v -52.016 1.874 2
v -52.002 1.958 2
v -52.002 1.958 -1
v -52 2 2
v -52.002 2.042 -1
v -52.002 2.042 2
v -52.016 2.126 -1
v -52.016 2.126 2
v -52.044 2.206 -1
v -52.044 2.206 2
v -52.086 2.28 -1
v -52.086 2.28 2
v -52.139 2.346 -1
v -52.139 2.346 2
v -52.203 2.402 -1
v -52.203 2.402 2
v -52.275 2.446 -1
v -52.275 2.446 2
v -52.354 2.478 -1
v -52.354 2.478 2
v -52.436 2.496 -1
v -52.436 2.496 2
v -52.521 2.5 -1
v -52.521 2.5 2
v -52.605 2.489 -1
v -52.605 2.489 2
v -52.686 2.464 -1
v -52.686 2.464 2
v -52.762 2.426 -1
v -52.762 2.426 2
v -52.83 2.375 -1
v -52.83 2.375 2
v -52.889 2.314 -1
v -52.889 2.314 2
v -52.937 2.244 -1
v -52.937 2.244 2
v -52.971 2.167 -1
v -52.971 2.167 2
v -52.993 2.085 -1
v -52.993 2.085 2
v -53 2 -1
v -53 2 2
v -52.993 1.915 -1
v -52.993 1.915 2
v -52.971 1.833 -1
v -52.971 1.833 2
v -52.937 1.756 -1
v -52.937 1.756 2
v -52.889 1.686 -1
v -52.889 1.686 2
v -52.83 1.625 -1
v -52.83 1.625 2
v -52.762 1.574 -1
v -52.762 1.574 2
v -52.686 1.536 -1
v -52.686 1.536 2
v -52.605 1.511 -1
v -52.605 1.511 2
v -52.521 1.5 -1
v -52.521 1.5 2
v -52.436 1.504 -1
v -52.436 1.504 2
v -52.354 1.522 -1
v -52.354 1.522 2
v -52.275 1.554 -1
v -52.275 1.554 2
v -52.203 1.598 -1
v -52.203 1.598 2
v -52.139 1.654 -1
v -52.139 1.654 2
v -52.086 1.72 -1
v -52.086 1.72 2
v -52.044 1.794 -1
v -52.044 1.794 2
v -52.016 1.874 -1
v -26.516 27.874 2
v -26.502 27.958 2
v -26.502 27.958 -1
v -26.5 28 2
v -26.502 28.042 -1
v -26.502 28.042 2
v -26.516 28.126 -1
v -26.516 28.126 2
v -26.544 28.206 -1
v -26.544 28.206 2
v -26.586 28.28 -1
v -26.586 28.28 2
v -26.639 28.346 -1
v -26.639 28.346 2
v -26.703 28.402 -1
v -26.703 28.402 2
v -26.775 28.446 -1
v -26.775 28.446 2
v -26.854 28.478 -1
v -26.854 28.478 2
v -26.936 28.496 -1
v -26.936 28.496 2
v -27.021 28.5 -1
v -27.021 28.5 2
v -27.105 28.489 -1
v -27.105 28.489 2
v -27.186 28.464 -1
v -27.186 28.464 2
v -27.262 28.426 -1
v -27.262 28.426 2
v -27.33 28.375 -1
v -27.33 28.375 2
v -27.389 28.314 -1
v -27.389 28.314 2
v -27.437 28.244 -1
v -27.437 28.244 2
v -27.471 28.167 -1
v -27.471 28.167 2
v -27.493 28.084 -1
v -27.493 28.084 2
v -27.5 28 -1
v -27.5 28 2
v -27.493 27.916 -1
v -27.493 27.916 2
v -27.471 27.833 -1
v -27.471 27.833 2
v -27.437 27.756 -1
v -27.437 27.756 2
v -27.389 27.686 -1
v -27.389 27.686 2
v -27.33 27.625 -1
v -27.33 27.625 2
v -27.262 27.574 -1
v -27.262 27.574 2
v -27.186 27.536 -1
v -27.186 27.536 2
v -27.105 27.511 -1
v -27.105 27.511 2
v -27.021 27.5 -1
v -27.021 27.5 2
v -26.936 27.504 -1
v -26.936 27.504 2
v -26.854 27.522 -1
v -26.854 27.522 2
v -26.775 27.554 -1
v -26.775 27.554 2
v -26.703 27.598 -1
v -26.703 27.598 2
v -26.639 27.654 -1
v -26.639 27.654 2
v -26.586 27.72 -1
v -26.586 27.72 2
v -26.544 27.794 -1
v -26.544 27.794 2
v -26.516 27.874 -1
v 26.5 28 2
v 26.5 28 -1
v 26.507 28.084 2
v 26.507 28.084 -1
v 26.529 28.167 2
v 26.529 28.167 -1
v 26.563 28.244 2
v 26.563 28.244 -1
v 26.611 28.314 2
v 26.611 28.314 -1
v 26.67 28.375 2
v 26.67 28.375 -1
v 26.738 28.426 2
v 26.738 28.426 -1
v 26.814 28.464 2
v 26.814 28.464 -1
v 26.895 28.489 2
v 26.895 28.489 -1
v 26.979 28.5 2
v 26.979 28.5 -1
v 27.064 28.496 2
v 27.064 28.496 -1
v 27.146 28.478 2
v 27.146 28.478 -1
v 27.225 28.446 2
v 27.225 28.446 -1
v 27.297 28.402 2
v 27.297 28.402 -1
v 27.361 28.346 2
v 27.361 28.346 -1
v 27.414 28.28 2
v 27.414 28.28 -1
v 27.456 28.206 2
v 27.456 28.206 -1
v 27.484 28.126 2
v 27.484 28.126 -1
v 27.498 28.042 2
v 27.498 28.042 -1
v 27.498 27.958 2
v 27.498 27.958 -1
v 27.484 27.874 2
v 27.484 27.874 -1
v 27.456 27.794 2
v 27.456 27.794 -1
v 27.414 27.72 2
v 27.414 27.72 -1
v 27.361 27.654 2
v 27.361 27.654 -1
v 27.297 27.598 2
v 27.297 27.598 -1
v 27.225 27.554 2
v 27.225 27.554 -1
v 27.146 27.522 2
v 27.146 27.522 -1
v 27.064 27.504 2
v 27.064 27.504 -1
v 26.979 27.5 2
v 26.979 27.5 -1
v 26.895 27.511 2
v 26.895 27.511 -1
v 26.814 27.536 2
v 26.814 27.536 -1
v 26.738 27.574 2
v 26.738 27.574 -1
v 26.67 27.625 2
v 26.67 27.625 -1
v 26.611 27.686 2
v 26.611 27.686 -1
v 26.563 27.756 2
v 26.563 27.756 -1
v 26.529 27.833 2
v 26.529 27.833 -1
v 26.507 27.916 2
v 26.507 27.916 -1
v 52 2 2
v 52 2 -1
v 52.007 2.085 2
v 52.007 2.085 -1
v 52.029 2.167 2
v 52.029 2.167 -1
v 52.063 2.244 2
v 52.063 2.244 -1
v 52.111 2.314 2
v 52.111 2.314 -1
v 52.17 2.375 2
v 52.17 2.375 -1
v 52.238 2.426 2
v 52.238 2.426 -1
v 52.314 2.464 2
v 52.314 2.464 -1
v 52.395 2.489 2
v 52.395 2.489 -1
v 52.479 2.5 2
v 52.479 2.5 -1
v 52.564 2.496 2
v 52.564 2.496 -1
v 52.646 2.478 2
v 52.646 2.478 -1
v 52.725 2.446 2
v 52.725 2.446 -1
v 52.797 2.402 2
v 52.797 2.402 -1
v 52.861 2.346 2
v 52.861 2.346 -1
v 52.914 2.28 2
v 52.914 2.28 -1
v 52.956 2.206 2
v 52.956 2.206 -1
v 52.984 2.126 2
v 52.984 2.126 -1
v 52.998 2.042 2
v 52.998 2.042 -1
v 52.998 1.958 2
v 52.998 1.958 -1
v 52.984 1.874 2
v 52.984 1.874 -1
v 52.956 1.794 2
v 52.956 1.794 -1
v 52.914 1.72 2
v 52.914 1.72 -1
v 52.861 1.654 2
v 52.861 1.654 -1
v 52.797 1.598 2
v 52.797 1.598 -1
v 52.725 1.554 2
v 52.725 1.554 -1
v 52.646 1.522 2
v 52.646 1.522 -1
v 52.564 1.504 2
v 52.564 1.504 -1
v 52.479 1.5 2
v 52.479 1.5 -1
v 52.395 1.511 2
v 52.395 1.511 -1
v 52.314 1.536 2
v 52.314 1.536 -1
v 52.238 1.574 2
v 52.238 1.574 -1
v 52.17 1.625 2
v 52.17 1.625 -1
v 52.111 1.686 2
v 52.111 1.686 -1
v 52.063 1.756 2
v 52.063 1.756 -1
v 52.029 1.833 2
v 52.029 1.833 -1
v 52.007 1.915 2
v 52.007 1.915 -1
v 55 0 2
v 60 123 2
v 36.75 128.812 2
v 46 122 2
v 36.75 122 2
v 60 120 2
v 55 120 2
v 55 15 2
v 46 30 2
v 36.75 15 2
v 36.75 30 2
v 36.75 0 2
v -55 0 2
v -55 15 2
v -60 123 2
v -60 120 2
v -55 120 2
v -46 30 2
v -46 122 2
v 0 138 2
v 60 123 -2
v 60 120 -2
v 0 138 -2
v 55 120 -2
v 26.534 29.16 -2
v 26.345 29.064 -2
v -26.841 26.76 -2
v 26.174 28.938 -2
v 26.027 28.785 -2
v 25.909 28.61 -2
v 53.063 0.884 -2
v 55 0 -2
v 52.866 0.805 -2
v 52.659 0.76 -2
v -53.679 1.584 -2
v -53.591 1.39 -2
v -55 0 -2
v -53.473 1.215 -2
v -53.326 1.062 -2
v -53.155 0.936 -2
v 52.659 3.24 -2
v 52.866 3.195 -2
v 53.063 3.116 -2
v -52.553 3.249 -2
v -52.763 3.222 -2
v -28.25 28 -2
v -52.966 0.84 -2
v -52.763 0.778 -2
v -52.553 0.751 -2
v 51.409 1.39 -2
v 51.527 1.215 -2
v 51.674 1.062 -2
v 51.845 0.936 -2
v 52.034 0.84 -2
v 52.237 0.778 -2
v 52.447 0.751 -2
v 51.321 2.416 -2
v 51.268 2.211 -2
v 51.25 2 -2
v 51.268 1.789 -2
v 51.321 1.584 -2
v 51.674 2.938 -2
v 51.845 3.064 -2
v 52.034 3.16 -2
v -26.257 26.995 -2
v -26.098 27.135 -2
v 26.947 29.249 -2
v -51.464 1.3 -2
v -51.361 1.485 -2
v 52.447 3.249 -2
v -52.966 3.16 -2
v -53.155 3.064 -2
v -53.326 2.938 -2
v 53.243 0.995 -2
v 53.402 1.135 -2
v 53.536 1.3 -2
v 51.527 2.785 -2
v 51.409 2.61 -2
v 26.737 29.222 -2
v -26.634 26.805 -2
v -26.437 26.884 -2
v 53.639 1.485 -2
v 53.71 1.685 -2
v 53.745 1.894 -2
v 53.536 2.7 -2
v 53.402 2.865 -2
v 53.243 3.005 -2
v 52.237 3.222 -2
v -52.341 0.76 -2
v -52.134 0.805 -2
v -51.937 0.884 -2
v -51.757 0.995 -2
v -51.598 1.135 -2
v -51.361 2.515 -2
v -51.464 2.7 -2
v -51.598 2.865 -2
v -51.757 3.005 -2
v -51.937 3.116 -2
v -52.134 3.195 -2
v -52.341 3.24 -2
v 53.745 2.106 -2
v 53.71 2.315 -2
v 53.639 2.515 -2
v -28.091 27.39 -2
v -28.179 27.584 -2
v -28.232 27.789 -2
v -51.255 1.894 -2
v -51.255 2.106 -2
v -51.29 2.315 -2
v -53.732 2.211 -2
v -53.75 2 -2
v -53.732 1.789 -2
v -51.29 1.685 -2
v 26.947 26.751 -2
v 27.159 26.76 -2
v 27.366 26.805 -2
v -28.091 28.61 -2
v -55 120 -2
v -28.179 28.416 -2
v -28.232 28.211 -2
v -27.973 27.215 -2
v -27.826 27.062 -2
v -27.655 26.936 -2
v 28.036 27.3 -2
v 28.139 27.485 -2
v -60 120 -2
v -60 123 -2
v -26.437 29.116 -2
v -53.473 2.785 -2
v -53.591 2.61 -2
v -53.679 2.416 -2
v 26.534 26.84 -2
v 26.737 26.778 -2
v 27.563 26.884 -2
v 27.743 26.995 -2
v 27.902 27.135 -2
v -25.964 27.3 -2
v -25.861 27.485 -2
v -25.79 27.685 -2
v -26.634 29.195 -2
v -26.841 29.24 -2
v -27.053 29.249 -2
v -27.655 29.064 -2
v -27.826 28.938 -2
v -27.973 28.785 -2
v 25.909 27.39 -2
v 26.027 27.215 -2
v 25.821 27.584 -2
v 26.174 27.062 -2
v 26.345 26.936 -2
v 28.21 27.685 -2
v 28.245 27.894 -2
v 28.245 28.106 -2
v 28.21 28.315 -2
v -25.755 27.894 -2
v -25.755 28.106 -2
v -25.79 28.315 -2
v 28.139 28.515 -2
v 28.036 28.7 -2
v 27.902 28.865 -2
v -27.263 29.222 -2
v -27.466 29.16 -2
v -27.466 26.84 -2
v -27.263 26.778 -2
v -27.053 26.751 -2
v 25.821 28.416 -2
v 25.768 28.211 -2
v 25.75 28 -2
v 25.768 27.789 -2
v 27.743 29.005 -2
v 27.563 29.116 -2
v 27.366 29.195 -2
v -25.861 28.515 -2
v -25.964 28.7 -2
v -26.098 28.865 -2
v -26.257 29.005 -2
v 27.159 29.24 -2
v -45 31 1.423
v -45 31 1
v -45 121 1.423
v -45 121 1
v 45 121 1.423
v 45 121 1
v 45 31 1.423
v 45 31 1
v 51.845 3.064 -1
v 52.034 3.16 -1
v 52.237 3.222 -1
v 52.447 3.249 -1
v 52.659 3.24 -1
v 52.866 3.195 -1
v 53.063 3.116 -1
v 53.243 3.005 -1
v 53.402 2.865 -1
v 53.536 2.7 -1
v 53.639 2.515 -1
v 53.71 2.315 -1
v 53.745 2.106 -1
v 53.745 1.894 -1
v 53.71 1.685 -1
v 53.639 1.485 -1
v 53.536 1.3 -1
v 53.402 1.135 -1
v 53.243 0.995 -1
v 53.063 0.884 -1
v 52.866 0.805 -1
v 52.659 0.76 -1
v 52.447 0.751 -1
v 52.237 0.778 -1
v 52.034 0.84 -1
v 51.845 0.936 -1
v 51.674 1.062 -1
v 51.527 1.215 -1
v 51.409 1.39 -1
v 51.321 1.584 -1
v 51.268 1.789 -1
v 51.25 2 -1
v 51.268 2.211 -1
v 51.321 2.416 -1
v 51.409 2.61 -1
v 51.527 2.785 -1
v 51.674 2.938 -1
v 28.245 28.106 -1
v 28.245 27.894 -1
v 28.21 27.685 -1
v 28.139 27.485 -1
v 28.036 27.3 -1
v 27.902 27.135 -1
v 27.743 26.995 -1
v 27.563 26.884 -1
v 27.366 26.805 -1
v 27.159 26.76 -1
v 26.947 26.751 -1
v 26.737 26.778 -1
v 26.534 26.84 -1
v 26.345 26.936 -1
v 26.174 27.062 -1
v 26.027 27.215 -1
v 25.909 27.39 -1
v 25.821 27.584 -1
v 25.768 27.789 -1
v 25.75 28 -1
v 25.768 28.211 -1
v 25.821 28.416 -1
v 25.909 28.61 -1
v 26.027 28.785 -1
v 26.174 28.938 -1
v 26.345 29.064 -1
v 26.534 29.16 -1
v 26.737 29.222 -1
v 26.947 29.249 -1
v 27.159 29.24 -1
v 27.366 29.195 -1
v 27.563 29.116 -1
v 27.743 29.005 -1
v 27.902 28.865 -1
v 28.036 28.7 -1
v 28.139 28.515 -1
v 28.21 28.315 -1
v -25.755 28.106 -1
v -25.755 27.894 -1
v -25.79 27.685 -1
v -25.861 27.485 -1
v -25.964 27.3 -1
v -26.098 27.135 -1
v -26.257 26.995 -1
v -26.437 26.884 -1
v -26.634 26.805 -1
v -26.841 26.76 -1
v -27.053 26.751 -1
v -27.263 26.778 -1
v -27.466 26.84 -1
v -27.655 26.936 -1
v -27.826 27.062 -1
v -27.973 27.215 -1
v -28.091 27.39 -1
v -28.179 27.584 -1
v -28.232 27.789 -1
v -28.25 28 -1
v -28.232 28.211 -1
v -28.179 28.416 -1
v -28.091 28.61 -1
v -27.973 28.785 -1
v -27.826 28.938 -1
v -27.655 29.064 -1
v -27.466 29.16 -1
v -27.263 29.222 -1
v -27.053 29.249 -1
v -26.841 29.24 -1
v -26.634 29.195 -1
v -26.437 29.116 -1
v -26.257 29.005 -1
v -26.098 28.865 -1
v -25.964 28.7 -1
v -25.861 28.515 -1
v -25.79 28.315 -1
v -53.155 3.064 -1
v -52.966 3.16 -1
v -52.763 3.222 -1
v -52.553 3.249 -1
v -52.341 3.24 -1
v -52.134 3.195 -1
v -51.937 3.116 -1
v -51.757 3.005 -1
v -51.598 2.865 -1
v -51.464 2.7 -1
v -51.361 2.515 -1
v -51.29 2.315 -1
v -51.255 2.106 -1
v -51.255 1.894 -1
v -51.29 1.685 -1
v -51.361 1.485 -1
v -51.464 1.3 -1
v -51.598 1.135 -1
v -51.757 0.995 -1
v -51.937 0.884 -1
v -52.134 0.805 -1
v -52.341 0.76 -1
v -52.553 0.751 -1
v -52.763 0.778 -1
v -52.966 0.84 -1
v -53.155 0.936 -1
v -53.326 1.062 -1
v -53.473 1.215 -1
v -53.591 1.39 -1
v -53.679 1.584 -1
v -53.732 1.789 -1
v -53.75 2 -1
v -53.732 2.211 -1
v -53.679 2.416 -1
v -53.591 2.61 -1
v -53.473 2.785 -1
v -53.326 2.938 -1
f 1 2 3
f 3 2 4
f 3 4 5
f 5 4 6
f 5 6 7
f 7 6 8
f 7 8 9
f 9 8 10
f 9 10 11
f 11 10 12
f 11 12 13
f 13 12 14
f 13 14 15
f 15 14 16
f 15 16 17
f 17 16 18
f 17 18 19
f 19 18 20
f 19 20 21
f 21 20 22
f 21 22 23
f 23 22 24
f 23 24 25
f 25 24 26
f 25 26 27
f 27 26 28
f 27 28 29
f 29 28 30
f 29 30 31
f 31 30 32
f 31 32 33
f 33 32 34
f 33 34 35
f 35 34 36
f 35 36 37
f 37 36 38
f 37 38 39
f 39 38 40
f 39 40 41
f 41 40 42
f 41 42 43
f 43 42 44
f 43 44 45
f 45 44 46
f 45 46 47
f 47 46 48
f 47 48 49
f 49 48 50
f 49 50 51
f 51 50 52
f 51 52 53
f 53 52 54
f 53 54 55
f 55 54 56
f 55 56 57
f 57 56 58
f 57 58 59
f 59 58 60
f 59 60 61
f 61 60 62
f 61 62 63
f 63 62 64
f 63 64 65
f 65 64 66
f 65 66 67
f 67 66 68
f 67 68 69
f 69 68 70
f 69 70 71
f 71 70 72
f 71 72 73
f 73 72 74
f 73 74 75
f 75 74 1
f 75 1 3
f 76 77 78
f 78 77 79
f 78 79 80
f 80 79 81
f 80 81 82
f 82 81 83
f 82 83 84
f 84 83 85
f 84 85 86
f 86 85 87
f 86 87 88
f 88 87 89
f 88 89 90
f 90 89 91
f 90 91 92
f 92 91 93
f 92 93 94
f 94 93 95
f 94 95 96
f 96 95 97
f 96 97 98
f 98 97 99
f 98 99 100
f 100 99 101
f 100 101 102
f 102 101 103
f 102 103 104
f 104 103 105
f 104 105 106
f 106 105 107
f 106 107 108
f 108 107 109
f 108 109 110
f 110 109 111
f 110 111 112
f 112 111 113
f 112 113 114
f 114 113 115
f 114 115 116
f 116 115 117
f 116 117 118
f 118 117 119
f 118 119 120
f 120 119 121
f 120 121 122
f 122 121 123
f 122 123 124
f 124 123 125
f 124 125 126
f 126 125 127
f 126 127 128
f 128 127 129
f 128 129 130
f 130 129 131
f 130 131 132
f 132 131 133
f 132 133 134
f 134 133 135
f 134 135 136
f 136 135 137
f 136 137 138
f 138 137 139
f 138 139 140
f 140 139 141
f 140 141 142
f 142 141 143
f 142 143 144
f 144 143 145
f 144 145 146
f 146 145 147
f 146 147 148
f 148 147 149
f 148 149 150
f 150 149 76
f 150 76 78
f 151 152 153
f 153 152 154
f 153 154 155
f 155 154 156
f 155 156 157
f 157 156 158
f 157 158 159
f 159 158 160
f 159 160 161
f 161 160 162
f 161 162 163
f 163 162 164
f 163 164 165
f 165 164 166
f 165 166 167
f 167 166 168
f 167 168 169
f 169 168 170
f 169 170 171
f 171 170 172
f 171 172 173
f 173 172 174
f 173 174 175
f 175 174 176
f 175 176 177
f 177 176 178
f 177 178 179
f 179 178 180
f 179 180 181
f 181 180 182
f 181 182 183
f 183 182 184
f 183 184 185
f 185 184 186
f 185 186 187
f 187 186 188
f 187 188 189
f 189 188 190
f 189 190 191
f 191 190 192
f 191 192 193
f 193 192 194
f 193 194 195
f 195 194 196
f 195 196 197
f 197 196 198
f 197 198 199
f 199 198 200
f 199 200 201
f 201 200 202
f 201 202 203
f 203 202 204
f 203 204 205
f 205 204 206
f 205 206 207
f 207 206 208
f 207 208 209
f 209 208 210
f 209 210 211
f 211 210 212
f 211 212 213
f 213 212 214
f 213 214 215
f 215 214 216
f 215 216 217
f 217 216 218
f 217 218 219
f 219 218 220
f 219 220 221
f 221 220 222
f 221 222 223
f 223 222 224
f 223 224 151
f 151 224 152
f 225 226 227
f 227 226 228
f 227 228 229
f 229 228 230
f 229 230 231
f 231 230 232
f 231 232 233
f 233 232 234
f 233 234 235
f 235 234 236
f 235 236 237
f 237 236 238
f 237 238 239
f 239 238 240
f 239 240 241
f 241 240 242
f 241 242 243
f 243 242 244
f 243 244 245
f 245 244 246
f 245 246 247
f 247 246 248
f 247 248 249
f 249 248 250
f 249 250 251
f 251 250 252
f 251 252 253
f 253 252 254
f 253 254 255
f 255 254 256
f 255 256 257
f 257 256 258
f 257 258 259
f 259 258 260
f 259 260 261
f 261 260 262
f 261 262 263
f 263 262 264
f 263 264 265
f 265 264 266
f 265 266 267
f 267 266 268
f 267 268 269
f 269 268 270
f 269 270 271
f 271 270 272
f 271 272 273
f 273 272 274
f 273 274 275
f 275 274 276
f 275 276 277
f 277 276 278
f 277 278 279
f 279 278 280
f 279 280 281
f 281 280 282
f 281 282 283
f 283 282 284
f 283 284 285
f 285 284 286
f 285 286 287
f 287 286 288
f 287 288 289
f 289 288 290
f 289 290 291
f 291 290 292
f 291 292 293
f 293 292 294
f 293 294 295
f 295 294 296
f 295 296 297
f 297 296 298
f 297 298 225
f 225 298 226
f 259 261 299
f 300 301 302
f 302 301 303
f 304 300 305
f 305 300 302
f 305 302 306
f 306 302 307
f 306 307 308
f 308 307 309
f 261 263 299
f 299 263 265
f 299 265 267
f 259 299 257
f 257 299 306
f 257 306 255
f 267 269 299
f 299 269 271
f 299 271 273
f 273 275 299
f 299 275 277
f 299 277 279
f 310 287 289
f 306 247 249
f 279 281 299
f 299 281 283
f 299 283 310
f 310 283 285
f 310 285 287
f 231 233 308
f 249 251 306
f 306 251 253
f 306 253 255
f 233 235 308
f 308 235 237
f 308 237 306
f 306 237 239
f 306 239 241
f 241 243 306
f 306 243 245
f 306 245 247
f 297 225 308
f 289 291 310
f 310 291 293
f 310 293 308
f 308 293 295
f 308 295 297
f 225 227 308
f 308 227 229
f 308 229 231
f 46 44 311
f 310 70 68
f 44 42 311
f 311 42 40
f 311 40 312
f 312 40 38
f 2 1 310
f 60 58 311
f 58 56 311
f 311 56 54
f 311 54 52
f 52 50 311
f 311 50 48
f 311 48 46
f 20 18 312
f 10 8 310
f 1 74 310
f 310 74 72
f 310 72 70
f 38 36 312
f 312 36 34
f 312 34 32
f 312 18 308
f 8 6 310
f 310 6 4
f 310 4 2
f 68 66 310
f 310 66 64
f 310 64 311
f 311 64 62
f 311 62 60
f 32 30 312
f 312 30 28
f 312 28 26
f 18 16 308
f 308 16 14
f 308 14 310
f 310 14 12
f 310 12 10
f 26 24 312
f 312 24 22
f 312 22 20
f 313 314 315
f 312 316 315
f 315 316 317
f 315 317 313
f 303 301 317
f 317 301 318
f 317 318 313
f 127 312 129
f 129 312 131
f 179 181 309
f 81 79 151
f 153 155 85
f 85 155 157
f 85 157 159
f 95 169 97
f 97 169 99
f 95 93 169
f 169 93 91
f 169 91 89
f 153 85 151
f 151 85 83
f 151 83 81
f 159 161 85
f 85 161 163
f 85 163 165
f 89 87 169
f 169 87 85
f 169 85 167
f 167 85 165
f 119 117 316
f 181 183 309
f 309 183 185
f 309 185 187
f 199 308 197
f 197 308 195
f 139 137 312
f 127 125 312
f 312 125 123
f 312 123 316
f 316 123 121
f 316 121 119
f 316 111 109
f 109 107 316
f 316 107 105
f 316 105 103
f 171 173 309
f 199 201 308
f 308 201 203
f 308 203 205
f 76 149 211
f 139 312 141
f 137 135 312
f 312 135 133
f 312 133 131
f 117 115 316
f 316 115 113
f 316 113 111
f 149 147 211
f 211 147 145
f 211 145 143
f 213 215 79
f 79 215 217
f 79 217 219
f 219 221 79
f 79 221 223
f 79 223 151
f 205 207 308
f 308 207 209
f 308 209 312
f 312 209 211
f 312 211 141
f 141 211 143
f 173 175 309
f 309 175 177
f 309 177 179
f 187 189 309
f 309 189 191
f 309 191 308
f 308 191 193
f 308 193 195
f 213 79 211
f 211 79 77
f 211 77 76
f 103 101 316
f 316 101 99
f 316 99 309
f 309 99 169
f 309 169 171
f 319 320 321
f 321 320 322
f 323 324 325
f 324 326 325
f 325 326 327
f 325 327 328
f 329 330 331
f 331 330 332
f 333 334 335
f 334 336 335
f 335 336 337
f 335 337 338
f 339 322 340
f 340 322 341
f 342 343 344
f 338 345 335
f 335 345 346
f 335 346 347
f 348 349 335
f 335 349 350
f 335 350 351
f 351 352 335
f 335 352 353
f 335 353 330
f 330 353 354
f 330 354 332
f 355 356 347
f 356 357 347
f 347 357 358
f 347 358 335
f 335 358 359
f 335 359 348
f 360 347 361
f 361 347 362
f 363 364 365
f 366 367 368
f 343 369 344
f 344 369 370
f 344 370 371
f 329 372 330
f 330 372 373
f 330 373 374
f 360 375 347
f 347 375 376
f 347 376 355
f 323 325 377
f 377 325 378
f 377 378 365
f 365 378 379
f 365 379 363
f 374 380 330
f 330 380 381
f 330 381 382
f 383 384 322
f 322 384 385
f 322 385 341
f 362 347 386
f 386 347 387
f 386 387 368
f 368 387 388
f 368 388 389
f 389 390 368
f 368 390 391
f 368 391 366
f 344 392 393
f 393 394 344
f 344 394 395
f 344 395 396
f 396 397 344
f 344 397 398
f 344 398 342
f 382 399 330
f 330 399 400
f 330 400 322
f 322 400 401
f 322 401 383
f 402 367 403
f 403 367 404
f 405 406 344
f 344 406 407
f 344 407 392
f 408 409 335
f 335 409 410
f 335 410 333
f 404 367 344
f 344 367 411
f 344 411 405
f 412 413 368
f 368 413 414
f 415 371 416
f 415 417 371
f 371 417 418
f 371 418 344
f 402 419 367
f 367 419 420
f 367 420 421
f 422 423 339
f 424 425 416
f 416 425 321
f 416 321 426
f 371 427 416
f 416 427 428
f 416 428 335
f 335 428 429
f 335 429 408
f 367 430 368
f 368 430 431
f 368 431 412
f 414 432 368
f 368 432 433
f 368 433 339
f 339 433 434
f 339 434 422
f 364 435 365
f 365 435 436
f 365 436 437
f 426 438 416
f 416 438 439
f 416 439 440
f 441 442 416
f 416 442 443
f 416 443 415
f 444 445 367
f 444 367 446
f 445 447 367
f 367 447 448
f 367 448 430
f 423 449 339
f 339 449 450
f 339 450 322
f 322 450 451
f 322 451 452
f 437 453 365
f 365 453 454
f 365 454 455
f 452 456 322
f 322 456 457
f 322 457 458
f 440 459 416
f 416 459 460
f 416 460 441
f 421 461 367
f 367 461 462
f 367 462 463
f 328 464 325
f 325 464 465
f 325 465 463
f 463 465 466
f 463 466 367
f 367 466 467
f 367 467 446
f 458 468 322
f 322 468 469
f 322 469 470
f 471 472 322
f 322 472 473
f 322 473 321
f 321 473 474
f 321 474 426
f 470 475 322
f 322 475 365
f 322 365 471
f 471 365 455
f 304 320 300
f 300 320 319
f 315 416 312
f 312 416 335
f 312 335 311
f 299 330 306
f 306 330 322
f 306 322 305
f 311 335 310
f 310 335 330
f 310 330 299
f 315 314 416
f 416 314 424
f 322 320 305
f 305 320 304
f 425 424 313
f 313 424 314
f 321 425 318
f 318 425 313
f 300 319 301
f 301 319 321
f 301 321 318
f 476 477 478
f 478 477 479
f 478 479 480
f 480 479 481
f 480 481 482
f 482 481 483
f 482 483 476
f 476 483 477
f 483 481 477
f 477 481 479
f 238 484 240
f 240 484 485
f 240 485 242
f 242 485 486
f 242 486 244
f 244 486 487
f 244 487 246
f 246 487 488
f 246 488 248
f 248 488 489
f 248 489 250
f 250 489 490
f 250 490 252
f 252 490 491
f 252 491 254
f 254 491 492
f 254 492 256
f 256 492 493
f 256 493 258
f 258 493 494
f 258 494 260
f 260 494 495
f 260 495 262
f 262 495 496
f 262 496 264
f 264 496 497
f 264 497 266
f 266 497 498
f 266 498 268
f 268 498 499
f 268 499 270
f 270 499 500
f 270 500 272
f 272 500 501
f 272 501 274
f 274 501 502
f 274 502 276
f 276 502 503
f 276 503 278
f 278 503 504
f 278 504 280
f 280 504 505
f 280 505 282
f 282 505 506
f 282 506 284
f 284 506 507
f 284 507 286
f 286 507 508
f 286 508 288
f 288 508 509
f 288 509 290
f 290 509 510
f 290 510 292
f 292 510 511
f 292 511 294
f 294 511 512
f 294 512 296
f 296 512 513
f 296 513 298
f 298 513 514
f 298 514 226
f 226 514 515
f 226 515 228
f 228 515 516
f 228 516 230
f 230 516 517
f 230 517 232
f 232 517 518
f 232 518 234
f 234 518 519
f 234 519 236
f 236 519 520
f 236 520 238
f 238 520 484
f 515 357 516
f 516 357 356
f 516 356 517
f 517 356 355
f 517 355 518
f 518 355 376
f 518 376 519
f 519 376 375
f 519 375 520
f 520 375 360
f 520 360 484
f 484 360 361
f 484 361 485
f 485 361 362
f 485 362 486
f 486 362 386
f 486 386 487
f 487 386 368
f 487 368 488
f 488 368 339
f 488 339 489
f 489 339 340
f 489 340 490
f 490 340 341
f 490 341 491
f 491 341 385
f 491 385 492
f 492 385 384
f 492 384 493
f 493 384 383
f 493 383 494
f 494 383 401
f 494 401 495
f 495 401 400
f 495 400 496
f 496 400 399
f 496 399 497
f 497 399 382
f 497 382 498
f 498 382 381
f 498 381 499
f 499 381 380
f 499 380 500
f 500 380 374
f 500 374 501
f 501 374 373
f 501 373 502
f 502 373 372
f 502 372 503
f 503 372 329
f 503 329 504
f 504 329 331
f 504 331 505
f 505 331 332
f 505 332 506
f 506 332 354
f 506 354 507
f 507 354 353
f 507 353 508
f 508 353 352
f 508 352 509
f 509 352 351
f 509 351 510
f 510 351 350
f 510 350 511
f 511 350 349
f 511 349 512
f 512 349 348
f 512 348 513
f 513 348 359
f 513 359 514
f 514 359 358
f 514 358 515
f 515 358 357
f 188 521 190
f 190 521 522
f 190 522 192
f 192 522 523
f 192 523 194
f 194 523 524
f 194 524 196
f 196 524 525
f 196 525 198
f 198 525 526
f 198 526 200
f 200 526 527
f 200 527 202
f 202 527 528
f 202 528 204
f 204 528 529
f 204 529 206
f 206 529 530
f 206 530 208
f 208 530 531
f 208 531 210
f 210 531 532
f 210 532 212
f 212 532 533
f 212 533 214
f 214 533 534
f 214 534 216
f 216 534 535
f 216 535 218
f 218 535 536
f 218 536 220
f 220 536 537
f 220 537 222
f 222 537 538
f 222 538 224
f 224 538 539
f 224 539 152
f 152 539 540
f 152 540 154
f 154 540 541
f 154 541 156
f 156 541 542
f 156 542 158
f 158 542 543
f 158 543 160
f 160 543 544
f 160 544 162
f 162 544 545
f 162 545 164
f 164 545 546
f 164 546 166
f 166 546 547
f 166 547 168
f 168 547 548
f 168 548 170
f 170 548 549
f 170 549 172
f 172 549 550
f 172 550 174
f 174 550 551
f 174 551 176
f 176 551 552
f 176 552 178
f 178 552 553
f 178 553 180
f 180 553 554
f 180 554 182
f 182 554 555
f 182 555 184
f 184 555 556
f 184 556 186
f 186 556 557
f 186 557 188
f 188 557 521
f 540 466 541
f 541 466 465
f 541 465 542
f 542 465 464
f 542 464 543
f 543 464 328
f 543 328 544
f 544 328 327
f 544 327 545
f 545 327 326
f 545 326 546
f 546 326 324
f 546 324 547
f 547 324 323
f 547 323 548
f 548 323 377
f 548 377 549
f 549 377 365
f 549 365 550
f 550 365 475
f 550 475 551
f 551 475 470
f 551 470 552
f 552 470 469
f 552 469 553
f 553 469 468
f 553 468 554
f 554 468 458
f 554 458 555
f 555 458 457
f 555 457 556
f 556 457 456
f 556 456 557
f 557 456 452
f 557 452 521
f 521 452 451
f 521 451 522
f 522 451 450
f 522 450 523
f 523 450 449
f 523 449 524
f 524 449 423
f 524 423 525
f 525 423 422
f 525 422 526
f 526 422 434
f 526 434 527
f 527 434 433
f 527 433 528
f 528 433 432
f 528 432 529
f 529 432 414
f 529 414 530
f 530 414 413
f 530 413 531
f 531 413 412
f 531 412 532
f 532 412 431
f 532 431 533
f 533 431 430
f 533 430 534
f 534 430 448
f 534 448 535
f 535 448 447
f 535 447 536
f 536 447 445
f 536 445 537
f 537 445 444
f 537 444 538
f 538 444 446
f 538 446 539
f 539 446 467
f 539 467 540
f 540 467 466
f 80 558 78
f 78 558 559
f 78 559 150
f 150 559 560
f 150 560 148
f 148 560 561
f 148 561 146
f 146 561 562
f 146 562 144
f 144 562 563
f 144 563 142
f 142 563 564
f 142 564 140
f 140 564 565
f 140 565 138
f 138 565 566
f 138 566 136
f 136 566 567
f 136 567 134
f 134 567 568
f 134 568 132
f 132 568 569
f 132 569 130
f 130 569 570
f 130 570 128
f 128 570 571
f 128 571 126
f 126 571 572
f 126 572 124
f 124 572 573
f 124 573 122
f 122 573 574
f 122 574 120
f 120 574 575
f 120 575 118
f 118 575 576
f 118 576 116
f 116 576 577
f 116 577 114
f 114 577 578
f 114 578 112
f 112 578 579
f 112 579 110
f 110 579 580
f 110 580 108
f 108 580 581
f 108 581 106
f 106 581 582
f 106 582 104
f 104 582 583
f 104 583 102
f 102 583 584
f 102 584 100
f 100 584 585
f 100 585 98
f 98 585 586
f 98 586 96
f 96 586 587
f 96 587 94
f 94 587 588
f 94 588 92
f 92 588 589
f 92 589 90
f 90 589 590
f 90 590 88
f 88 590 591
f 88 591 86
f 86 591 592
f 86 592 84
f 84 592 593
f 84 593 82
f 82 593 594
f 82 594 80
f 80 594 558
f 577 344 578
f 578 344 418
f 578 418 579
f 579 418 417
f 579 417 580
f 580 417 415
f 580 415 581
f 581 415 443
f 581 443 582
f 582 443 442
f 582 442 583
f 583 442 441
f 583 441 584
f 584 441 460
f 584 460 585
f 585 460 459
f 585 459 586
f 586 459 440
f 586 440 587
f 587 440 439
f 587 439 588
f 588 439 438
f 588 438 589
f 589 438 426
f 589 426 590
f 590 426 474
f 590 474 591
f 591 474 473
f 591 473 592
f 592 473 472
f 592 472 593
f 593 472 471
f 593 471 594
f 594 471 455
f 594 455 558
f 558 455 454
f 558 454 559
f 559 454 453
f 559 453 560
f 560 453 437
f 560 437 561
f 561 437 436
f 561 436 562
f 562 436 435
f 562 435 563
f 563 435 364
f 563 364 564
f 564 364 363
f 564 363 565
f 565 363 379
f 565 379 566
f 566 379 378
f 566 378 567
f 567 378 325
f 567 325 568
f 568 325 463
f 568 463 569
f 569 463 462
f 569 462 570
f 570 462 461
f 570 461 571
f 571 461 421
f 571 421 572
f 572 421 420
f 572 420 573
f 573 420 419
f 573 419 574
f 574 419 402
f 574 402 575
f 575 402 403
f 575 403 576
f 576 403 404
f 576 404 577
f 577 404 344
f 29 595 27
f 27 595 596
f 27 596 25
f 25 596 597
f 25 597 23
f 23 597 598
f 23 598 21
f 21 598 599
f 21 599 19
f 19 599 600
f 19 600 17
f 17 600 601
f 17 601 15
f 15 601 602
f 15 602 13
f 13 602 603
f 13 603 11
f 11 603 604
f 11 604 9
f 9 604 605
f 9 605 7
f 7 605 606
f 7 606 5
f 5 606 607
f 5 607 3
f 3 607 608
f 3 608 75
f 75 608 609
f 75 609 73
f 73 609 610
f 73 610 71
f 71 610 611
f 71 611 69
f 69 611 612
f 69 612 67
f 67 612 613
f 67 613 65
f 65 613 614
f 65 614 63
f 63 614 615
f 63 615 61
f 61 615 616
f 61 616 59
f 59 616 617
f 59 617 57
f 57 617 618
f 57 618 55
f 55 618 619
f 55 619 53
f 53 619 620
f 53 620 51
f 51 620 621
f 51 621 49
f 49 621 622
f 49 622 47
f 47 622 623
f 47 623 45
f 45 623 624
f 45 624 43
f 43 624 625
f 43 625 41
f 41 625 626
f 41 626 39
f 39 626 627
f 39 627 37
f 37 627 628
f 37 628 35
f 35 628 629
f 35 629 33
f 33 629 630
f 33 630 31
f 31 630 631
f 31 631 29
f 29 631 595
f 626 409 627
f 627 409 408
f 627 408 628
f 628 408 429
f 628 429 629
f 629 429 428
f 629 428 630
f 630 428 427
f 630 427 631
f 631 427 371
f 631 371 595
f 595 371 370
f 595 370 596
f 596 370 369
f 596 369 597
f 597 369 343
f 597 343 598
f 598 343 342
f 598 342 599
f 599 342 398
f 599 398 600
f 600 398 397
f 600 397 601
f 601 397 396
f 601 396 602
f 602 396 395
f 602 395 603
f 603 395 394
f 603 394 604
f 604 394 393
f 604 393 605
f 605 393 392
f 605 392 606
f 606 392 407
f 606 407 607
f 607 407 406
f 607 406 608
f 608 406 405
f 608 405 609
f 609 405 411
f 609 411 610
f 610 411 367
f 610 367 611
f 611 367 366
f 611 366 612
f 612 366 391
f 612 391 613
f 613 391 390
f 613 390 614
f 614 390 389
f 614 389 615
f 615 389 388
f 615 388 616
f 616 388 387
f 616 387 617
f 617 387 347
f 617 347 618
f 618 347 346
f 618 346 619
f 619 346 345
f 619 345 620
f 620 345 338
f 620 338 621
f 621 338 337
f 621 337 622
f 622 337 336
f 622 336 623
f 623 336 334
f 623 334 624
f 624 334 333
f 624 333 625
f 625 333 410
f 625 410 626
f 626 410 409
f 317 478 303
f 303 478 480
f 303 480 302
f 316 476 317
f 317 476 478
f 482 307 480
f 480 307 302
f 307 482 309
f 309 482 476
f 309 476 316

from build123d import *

# Parameters (mm, degrees)
SKETCH_1_W          = 110
SKETCH_1_H          = 4
EXTRUDE_1_DEPTH     = 120
SKETCH_2_W          = 120
SKETCH_2_H          = 4
EXTRUDE_2_DEPTH     = 18
CUT_EXTRUDE_1_DEPTH = 5
SKETCH_4_W          = 90
SKETCH_4_H          = 90
CUT_EXTRUDE_2_DEPTH = 1
SKETCH_6_R          = 0.5
CUT_EXTRUDE_3_DEPTH = 5
SKETCH_7_R          = 1.25
CUT_EXTRUDE_4_DEPTH = 1
CHAMFER_1_SIZE      = 1
CHAMFER_1_SIZE2     = 0.577350269


with BuildPart() as part:
    # 草图1 → 凸台-拉伸1 (new body)
    with BuildSketch(Plane(origin=(0, 0, 0), x_dir=(1, 0, 0), z_dir=(0, 1, 0))):
        Rectangle(SKETCH_1_W, SKETCH_1_H)
    extrude(amount=EXTRUDE_1_DEPTH)

    # 草图2 → 凸台-拉伸2 (add)
    with BuildSketch(Plane(origin=(0, 120, 0), x_dir=(1, 0, 0), z_dir=(0, 1, 0))):
        Rectangle(SKETCH_2_W, SKETCH_2_H)
    extrude(amount=EXTRUDE_2_DEPTH)

    # 草图3 → 切除-拉伸1 (cut, through all)
    with BuildSketch(Plane.XY.offset(2)):
        Polygon((-60, 138), (0, 138), (-60, 123), align=None)
    cut_extrude_1 = extrude(amount=-CUT_EXTRUDE_1_DEPTH, mode=Mode.SUBTRACT)

    # 镜向1: 切除-拉伸1 across plane
    add(cut_extrude_1.mirror(Plane(origin=(0, 0, 0), x_dir=(0, 0, 1), z_dir=(1, 0, 0))), mode=Mode.SUBTRACT)

    # 草图4 → 切除-拉伸2 (cut)
    with BuildSketch(Plane.XY.offset(2)):
        with Locations((0, 76)):
            Rectangle(SKETCH_4_W, SKETCH_4_H)
    extrude(amount=-CUT_EXTRUDE_2_DEPTH, mode=Mode.SUBTRACT)

    # 草图6 → 切除-拉伸3 (cut, through all)
    with BuildSketch(Plane(origin=(0, 0, -2), x_dir=(-1, 0, 0), z_dir=(0, 0, -1))):
        with Locations((-52.5, 2)):
            Circle(SKETCH_6_R)
        with Locations((-27, 28)):
            Circle(SKETCH_6_R)
        with Locations((27, 28)):
            Circle(SKETCH_6_R)
        with Locations((52.5, 2)):
            Circle(SKETCH_6_R)
    extrude(amount=-CUT_EXTRUDE_3_DEPTH, mode=Mode.SUBTRACT)

    # 草图7 → 切除-拉伸4 (cut)
    with BuildSketch(Plane(origin=(0, 0, -2), x_dir=(-1, 0, 0), z_dir=(0, 0, -1))):
        with Locations((-52.5, 2)):
            Circle(SKETCH_7_R)
        with Locations((-27, 28)):
            Circle(SKETCH_7_R)
        with Locations((27, 28)):
            Circle(SKETCH_7_R)
        with Locations((52.5, 2)):
            Circle(SKETCH_7_R)
    extrude(amount=-CUT_EXTRUDE_4_DEPTH, mode=Mode.SUBTRACT)

    # 倒角1
    chamfer_1_edges = [part.edges().sort_by_distance(p)[0] for p in [
        (-45, 76, 2),
        (0, 31, 2),
        (45, 76, 2),
        (0, 121, 2),
    ]]
    chamfer_1_side = [part.faces().sort_by_distance(p)[0] for p in [
        (57.5, 121.828770078, 2),
    ]]
    chamfer(chamfer_1_edges, length=CHAMFER_1_SIZE, length2=CHAMFER_1_SIZE2, reference=chamfer_1_side[0])


solid = part.part
